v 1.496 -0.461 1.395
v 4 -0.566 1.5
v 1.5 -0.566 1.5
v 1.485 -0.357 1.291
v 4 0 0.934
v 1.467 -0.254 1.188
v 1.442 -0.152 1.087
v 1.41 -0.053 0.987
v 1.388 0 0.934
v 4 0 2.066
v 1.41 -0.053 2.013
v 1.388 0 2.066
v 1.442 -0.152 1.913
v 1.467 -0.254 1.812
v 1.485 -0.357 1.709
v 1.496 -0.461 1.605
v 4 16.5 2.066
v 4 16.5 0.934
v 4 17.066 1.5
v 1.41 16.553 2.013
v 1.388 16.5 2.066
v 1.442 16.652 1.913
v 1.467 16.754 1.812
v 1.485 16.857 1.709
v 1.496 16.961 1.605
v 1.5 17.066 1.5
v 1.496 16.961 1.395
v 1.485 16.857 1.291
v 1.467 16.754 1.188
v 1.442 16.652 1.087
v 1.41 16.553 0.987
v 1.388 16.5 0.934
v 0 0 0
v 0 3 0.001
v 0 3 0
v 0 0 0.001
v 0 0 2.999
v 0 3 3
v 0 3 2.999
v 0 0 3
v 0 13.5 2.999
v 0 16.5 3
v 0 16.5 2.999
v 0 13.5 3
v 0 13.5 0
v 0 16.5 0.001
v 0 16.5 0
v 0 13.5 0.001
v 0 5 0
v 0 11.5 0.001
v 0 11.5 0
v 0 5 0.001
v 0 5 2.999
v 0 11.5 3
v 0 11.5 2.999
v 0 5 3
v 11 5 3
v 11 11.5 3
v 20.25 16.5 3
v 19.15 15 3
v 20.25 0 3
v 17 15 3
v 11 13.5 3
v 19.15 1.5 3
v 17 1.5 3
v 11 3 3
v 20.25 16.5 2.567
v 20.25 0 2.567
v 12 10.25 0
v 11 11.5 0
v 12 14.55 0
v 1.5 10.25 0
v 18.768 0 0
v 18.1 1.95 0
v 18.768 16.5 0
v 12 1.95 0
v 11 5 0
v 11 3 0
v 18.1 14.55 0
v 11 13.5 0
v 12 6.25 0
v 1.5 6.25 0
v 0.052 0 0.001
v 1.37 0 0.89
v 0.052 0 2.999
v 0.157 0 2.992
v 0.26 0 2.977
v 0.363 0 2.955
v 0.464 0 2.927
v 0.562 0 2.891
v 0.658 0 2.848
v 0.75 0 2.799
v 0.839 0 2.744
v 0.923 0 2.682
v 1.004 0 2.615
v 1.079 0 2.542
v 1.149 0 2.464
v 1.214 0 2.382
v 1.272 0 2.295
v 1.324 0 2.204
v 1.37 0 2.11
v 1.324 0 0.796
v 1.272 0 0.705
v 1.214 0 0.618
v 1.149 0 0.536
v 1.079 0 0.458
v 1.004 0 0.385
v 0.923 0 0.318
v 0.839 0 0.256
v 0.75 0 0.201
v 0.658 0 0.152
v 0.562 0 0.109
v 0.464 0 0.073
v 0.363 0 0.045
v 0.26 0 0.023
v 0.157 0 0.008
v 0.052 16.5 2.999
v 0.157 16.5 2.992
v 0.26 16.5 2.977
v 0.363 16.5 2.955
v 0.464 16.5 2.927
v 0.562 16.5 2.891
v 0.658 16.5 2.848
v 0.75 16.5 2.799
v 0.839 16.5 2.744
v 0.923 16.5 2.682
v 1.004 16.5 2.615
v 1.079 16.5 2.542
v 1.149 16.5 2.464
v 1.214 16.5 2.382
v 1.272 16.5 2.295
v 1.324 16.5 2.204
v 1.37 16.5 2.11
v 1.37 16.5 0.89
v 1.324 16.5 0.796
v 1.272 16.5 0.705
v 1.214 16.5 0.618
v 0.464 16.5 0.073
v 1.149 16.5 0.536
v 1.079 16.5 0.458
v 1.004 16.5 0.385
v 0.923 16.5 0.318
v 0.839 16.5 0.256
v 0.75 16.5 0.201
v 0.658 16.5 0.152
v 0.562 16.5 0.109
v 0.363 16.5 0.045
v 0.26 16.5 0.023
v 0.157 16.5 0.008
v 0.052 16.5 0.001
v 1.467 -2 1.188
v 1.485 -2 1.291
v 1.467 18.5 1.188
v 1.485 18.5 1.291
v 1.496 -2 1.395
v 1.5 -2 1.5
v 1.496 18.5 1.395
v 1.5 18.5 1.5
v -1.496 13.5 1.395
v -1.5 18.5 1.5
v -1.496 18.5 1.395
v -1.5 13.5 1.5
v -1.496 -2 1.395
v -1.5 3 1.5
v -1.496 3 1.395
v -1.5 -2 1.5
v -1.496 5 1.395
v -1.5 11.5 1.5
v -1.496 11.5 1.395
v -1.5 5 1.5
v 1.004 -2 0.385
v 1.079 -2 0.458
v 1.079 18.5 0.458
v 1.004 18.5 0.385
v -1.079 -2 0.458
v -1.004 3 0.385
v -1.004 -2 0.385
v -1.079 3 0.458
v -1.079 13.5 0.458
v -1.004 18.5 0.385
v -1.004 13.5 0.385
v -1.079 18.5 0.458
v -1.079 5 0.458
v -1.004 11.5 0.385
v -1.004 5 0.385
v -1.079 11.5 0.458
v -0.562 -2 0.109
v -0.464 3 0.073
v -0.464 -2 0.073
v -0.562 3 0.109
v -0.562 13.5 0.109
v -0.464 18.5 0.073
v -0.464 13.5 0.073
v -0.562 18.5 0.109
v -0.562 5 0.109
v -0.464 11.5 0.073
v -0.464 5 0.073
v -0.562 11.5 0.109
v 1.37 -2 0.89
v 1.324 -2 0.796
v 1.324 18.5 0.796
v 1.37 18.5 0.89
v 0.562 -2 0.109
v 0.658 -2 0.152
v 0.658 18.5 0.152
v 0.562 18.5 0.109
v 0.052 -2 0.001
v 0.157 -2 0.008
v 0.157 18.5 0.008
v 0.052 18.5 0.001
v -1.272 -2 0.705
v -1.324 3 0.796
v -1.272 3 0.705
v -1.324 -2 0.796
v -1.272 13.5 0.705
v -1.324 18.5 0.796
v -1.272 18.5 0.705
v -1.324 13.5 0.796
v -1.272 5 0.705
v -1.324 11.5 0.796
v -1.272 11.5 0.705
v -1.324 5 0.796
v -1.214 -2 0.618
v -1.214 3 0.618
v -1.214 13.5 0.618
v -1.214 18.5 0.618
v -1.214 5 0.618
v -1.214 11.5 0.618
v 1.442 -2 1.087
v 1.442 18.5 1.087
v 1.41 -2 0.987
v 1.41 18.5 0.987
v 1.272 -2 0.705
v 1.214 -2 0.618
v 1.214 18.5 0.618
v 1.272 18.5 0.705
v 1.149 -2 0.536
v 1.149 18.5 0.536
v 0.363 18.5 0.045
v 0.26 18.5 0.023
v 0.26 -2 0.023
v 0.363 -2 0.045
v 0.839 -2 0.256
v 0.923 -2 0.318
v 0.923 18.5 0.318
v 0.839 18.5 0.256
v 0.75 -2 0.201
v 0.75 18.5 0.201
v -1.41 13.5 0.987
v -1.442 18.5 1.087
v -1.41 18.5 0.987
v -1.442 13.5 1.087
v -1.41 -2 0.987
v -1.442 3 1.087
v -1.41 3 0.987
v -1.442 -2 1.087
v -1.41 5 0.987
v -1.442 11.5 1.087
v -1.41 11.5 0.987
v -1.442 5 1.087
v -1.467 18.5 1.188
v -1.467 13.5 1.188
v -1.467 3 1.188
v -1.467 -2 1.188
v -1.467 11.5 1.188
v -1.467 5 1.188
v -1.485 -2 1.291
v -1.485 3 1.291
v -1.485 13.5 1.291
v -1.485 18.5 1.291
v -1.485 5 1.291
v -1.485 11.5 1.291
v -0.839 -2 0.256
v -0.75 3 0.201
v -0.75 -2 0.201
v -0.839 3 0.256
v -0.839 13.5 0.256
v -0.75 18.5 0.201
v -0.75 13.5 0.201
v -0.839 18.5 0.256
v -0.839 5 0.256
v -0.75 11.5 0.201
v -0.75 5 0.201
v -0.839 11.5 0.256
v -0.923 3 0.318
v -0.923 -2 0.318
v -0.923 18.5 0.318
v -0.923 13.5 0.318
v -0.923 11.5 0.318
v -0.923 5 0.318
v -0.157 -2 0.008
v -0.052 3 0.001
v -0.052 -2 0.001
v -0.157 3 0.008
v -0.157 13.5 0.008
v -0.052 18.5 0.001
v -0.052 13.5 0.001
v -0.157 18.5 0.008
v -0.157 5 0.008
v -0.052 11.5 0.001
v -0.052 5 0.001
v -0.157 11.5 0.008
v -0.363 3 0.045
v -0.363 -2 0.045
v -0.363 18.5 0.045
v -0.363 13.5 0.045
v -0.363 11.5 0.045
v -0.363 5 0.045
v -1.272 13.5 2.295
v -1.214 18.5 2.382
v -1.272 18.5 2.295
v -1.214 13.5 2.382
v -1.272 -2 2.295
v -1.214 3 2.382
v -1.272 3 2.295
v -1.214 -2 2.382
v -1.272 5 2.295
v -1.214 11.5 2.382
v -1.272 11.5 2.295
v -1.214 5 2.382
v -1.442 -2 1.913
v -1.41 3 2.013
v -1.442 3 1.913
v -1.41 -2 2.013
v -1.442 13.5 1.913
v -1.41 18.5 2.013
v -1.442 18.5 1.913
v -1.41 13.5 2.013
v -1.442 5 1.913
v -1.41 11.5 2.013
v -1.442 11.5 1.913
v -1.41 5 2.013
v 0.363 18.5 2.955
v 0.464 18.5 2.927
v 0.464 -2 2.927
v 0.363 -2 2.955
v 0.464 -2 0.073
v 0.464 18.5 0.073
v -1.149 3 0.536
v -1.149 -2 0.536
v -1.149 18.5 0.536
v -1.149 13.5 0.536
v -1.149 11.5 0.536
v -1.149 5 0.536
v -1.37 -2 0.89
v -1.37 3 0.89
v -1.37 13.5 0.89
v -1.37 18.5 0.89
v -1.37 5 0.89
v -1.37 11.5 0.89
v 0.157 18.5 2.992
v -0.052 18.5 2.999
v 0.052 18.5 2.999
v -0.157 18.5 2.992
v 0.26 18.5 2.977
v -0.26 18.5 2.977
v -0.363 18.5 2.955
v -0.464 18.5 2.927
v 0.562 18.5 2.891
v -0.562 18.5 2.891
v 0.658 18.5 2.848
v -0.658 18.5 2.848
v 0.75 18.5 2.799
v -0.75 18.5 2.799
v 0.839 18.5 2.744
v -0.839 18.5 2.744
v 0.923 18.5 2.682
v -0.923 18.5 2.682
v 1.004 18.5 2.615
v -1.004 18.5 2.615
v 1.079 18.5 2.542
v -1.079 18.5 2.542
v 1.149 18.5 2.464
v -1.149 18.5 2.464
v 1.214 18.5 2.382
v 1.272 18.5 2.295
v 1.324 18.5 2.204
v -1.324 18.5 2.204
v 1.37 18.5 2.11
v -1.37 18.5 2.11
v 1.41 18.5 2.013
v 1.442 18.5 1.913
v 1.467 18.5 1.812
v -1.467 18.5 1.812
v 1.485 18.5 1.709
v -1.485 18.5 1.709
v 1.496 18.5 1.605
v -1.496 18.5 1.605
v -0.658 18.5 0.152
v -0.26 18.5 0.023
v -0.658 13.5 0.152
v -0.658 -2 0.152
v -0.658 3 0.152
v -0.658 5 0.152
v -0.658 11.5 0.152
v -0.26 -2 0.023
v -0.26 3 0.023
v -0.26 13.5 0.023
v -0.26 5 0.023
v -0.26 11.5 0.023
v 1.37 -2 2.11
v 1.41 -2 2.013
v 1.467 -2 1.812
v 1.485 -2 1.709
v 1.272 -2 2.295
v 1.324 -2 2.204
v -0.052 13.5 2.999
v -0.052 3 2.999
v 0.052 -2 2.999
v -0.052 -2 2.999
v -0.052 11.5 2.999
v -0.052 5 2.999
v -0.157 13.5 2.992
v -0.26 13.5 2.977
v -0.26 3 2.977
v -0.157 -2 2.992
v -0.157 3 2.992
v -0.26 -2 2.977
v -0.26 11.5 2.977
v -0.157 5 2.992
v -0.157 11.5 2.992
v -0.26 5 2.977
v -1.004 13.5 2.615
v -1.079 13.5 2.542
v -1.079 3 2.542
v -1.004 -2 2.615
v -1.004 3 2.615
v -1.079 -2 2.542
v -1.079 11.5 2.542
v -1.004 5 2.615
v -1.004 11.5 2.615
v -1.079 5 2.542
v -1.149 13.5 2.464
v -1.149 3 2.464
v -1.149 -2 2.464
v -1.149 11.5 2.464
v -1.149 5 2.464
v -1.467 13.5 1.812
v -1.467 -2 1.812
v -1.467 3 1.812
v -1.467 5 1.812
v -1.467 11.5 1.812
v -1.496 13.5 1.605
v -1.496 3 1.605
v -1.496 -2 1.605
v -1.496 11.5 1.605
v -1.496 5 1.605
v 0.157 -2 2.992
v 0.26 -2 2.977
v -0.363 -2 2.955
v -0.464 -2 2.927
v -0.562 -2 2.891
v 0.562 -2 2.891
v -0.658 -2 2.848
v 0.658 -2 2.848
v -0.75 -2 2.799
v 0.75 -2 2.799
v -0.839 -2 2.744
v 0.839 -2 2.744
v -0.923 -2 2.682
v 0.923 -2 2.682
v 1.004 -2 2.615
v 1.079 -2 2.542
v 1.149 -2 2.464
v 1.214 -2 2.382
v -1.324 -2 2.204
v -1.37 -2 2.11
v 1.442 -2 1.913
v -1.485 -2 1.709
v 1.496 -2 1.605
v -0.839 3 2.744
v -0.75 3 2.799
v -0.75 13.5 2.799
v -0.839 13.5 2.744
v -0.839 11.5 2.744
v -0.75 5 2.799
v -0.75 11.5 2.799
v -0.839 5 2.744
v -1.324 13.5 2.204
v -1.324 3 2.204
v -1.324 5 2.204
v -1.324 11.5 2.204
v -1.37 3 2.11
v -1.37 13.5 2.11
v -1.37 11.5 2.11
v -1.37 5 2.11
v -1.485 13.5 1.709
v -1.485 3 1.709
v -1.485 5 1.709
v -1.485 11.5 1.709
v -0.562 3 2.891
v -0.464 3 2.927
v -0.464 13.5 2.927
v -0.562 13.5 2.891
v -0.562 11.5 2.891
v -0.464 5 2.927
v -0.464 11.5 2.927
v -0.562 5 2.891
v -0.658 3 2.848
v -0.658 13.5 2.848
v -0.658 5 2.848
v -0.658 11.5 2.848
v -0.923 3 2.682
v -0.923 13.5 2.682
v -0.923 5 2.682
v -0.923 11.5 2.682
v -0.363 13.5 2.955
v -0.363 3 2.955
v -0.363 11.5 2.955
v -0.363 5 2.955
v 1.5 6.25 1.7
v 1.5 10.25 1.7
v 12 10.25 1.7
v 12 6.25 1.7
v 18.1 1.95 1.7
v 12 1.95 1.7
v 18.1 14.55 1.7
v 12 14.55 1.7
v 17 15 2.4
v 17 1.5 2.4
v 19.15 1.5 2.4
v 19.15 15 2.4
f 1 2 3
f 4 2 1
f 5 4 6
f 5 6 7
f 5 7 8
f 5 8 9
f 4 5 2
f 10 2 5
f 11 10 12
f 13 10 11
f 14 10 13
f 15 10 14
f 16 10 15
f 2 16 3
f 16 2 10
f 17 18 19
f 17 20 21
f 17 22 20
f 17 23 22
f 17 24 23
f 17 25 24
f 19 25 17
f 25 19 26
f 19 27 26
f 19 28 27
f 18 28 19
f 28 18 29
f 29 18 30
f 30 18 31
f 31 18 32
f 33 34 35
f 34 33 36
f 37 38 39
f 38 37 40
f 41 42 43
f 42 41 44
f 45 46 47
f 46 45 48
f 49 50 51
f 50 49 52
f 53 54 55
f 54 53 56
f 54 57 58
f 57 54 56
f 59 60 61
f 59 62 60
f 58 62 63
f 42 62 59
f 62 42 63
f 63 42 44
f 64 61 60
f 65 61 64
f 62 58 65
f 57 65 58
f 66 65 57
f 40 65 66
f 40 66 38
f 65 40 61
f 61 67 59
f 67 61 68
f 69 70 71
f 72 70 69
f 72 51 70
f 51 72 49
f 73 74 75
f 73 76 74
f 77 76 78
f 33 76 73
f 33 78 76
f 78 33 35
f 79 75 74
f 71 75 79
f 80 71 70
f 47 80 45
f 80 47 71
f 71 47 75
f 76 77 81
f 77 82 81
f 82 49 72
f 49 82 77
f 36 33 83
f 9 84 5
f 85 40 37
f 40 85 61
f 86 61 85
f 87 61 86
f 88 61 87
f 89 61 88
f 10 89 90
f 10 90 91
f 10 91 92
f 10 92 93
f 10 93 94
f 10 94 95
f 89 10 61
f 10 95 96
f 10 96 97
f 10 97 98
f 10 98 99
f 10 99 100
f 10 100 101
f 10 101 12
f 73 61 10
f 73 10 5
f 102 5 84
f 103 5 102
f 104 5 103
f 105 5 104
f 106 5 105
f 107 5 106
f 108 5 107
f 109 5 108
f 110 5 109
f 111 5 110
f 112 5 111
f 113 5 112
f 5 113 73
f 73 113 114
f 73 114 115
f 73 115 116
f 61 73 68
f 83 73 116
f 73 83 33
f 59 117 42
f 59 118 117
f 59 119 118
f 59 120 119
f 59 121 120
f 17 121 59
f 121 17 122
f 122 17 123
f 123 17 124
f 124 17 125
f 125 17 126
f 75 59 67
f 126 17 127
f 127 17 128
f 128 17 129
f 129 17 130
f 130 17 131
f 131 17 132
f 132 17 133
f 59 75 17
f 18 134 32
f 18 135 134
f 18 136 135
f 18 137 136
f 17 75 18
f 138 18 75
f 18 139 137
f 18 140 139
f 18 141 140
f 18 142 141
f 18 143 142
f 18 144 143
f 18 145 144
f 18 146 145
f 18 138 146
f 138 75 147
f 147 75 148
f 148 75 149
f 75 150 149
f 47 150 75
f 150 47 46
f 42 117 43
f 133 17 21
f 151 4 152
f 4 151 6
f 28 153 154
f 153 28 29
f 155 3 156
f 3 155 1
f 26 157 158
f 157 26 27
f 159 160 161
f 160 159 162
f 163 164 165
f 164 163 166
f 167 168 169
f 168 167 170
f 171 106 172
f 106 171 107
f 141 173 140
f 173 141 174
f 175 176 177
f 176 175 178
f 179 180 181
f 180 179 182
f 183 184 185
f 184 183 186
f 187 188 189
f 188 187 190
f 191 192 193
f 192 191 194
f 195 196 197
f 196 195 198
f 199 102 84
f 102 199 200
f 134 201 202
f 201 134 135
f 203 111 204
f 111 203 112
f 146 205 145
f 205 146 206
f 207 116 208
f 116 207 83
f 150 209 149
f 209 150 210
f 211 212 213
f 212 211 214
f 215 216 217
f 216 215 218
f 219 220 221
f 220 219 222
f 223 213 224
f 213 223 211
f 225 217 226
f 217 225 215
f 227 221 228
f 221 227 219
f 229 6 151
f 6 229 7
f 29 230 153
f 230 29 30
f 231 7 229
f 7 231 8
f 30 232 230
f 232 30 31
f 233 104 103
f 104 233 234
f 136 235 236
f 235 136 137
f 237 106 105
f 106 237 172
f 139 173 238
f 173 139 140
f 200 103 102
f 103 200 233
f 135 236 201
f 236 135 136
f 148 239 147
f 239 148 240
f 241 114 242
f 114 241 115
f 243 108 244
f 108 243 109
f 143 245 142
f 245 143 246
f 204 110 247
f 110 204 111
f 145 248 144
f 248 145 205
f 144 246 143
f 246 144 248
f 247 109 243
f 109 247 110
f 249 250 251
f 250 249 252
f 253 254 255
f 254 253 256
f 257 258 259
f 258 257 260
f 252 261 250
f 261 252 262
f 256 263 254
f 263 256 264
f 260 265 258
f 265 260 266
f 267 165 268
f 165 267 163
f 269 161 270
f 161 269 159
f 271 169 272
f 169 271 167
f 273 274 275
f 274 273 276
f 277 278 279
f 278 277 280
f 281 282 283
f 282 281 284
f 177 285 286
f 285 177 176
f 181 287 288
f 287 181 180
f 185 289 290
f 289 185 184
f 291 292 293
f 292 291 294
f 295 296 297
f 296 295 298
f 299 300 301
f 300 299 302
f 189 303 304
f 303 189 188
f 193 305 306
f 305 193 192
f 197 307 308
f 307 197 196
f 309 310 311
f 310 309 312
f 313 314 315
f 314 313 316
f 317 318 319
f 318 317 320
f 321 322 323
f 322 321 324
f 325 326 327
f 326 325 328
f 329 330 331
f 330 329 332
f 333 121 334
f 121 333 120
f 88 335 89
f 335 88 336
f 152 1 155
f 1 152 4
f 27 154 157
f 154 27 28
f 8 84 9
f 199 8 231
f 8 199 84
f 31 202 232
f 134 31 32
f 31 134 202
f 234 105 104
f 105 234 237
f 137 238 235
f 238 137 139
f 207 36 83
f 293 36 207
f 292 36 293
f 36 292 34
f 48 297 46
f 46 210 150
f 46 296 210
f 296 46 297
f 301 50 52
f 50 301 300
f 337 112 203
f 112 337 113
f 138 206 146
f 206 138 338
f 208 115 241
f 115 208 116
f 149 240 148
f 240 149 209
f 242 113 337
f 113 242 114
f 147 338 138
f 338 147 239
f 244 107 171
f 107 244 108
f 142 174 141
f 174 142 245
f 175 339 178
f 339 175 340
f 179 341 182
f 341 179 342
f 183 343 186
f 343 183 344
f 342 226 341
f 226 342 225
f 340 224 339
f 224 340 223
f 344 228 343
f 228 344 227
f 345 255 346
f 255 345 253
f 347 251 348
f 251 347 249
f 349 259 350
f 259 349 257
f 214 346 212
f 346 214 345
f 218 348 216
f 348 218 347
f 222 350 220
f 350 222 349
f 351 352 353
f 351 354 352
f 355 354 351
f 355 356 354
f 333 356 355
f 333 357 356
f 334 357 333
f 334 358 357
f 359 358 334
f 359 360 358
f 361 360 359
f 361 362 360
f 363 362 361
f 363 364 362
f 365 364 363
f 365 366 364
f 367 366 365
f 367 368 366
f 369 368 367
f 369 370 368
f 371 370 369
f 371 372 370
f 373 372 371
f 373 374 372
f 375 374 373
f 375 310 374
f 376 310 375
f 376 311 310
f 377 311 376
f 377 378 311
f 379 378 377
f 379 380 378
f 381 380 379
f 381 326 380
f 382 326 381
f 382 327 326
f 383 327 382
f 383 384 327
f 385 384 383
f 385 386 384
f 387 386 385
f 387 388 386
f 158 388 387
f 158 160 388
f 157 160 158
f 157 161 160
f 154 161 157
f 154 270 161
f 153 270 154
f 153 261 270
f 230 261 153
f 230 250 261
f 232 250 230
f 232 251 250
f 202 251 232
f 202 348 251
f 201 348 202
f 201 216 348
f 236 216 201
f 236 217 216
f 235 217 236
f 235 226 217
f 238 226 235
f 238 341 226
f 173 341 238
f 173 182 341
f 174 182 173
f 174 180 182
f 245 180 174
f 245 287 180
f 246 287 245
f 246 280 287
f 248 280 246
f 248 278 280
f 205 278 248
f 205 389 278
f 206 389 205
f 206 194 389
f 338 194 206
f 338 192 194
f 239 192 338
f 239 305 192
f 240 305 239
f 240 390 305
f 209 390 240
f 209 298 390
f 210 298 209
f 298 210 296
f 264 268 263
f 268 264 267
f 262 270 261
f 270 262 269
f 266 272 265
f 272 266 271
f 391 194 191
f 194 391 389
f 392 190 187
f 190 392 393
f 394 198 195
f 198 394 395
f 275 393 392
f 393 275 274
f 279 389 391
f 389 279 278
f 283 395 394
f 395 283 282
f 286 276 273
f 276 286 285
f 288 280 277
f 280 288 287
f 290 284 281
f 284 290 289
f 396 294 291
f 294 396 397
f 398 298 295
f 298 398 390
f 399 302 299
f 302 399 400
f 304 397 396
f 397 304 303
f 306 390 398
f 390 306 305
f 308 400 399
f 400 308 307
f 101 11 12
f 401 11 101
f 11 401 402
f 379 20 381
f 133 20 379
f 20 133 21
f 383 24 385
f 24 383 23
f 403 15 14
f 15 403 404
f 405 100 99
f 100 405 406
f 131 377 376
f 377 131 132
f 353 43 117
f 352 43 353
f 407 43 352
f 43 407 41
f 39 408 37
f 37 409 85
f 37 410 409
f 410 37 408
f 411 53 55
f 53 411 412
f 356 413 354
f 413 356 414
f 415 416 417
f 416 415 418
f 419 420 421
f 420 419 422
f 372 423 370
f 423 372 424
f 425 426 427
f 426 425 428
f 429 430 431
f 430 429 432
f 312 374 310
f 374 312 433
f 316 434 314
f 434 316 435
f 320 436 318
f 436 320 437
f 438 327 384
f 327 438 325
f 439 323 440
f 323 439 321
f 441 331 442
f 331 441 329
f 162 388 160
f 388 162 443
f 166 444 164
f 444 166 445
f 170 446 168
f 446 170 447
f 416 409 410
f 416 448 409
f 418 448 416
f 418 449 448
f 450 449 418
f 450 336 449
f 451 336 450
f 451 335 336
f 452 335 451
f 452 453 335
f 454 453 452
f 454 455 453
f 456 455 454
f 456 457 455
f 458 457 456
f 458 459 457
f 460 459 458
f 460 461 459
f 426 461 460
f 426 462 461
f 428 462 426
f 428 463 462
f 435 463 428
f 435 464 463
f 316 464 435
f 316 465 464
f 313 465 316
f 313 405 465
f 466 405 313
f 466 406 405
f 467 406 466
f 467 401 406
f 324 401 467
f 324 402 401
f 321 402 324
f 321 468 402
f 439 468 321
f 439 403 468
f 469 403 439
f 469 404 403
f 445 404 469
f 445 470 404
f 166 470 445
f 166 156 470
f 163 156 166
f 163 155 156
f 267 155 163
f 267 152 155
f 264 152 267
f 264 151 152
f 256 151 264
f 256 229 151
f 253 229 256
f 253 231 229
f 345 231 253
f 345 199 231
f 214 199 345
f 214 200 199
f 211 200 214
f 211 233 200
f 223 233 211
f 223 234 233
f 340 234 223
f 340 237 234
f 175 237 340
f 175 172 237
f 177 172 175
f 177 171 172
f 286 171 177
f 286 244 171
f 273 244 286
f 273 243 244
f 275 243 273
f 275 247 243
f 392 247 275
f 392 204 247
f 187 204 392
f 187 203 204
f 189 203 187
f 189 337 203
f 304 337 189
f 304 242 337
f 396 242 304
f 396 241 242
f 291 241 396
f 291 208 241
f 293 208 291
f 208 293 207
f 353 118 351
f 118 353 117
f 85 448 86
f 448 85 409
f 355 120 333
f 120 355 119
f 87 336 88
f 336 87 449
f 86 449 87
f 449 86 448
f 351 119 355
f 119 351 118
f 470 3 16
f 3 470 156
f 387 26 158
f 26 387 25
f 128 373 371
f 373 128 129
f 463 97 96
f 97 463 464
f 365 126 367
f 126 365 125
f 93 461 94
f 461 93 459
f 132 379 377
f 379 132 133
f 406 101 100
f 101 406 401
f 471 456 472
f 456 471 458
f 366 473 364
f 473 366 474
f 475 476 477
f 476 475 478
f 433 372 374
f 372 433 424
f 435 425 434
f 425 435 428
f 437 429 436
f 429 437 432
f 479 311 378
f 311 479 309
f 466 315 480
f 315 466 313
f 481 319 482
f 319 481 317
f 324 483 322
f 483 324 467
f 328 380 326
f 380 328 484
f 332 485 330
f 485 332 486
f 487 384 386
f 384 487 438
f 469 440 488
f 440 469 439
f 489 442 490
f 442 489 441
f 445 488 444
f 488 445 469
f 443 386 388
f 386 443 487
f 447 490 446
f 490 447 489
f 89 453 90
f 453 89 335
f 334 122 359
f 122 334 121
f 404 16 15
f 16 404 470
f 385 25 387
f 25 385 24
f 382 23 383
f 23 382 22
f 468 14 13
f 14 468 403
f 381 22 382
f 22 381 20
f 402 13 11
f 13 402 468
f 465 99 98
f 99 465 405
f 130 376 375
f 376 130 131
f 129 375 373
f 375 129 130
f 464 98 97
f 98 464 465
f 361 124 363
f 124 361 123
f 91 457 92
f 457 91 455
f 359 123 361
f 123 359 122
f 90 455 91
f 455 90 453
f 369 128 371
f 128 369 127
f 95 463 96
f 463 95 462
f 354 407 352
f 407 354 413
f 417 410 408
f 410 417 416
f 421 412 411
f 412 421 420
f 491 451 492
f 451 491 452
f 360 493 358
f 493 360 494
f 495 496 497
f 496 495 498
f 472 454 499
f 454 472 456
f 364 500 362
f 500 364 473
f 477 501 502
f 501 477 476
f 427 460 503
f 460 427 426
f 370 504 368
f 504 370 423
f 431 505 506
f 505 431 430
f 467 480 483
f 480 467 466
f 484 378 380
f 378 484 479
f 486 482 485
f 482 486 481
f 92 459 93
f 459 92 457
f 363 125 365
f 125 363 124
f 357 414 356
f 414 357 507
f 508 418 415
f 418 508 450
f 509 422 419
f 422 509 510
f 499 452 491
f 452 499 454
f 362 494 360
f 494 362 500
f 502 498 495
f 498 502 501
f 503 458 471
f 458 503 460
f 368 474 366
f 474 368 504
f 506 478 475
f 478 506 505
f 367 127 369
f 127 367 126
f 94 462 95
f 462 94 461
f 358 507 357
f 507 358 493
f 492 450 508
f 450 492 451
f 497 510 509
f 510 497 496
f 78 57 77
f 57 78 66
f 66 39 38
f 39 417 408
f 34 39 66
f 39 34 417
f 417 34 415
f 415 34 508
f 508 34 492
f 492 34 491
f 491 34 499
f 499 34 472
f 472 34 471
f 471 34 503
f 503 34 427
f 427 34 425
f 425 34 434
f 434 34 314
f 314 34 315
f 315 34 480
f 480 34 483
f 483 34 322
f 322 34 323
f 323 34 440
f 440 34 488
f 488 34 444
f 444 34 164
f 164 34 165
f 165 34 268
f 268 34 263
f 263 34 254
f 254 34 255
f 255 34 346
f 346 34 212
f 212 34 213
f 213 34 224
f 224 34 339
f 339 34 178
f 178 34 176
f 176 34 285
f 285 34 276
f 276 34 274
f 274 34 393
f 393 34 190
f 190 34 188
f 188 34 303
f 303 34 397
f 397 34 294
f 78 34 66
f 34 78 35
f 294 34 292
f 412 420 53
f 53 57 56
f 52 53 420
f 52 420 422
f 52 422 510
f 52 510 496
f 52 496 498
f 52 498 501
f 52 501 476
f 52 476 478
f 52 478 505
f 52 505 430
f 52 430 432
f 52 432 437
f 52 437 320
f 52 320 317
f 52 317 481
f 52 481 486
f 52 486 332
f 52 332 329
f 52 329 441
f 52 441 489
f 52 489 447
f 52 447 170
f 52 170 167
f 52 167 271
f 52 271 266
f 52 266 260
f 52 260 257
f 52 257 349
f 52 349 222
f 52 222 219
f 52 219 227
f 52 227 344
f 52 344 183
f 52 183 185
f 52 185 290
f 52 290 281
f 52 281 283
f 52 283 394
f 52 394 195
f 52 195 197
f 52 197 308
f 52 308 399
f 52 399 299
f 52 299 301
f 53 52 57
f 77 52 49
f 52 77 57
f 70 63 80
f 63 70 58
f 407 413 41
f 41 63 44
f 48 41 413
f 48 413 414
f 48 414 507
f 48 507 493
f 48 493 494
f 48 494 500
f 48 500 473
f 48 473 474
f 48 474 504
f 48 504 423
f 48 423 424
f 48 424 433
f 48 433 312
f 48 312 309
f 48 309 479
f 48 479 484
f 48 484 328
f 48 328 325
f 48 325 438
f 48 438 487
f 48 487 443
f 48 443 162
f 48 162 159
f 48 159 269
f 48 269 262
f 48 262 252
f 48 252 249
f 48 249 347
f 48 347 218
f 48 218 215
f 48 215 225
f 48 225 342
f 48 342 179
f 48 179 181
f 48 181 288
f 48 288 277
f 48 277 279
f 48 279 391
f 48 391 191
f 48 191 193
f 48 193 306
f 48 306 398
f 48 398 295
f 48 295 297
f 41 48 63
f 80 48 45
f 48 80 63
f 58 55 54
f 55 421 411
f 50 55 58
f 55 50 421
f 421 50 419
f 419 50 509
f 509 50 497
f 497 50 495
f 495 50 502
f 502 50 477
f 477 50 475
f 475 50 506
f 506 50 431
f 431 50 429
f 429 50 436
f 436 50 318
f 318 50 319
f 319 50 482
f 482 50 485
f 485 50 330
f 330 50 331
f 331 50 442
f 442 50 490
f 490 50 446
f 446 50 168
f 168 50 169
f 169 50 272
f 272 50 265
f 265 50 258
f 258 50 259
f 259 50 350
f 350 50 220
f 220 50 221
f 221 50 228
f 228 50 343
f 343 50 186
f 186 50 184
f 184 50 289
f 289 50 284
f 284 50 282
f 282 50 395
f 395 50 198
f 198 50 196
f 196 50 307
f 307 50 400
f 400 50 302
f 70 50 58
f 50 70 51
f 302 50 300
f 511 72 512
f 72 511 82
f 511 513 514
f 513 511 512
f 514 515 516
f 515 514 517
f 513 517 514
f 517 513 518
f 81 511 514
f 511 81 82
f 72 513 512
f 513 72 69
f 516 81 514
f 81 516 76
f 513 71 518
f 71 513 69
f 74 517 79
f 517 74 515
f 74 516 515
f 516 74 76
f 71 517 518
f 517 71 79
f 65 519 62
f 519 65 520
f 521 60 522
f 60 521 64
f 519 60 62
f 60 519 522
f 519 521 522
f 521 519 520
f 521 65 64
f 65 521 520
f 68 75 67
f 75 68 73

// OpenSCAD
$fn=90;

barLength = 20.5;
barDiameter = 3;

cubeLength = 21.75 - barDiameter/2;
cubeWidth = 16.5;
cubeHeight = barDiameter;

difference(){
    massivePart();
    #cutOut();
}

module massivePart(){
    cube([cubeLength, cubeWidth, cubeHeight], center = false);
	rotate([-90,0,0])
		translate([0, -barDiameter/2, -(barLength-cubeWidth)/2])
			cylinder(h = barLength, d = barDiameter, center = false);
	locks();
}

module locks(){
	sideLength = 0.8;
	translate([0, 0, (cubeHeight-sideLength*sqrt(2))/2])
		rotate([45, 0, 0])
			cube([4, sideLength, sideLength], center = false);
	translate([0, cubeWidth, (cubeHeight-sideLength*sqrt(2))/2])
		rotate([45, 0, 0])
			cube([4, sideLength, sideLength], center = false);
}

module cutOut(){
	union(){
		slits();
		topValley();
		bottomValley();
		slope();
	}
}

module slits(){
	slitWidth = 2;
	slitHeight = cubeHeight+1;
	slitLength = 15;
	translate([-4, 3, -(slitHeight-cubeHeight)/2])
		cube([slitLength, slitWidth, slitHeight], center = false);
	translate([-4, cubeWidth-3-slitWidth, -(slitHeight-cubeHeight)/2])
		cube([slitLength, slitWidth, slitHeight], center = false);
}

module topValley(){
	valleyLength = 13.5;
	translate([17, (cubeWidth-valleyLength)/2, 2.4])
		cube([2.15, valleyLength, 1], center = false);
}

module bottomValley(){
	valley_1_Width = 4;
	valley_2_Length= 12.6;
	valleyDepth = 1.7;
	depthOvershoot = 1;
	translate([barDiameter/2, (cubeWidth-valley_1_Width)/2, -depthOvershoot])
		cube([15, valley_1_Width, valleyDepth+depthOvershoot], center = false);
	translate([12, (cubeWidth-valley_2_Length)/2, -depthOvershoot])
		cube([6.1, valley_2_Length, valleyDepth+depthOvershoot], center = false);
}

module slope(){
	valleyLength = 13.5;
	translate([20.5, -0.5, -1])
		rotate([0, -60, 0])
			cube([4, cubeWidth+1, 2], center = false);
}
